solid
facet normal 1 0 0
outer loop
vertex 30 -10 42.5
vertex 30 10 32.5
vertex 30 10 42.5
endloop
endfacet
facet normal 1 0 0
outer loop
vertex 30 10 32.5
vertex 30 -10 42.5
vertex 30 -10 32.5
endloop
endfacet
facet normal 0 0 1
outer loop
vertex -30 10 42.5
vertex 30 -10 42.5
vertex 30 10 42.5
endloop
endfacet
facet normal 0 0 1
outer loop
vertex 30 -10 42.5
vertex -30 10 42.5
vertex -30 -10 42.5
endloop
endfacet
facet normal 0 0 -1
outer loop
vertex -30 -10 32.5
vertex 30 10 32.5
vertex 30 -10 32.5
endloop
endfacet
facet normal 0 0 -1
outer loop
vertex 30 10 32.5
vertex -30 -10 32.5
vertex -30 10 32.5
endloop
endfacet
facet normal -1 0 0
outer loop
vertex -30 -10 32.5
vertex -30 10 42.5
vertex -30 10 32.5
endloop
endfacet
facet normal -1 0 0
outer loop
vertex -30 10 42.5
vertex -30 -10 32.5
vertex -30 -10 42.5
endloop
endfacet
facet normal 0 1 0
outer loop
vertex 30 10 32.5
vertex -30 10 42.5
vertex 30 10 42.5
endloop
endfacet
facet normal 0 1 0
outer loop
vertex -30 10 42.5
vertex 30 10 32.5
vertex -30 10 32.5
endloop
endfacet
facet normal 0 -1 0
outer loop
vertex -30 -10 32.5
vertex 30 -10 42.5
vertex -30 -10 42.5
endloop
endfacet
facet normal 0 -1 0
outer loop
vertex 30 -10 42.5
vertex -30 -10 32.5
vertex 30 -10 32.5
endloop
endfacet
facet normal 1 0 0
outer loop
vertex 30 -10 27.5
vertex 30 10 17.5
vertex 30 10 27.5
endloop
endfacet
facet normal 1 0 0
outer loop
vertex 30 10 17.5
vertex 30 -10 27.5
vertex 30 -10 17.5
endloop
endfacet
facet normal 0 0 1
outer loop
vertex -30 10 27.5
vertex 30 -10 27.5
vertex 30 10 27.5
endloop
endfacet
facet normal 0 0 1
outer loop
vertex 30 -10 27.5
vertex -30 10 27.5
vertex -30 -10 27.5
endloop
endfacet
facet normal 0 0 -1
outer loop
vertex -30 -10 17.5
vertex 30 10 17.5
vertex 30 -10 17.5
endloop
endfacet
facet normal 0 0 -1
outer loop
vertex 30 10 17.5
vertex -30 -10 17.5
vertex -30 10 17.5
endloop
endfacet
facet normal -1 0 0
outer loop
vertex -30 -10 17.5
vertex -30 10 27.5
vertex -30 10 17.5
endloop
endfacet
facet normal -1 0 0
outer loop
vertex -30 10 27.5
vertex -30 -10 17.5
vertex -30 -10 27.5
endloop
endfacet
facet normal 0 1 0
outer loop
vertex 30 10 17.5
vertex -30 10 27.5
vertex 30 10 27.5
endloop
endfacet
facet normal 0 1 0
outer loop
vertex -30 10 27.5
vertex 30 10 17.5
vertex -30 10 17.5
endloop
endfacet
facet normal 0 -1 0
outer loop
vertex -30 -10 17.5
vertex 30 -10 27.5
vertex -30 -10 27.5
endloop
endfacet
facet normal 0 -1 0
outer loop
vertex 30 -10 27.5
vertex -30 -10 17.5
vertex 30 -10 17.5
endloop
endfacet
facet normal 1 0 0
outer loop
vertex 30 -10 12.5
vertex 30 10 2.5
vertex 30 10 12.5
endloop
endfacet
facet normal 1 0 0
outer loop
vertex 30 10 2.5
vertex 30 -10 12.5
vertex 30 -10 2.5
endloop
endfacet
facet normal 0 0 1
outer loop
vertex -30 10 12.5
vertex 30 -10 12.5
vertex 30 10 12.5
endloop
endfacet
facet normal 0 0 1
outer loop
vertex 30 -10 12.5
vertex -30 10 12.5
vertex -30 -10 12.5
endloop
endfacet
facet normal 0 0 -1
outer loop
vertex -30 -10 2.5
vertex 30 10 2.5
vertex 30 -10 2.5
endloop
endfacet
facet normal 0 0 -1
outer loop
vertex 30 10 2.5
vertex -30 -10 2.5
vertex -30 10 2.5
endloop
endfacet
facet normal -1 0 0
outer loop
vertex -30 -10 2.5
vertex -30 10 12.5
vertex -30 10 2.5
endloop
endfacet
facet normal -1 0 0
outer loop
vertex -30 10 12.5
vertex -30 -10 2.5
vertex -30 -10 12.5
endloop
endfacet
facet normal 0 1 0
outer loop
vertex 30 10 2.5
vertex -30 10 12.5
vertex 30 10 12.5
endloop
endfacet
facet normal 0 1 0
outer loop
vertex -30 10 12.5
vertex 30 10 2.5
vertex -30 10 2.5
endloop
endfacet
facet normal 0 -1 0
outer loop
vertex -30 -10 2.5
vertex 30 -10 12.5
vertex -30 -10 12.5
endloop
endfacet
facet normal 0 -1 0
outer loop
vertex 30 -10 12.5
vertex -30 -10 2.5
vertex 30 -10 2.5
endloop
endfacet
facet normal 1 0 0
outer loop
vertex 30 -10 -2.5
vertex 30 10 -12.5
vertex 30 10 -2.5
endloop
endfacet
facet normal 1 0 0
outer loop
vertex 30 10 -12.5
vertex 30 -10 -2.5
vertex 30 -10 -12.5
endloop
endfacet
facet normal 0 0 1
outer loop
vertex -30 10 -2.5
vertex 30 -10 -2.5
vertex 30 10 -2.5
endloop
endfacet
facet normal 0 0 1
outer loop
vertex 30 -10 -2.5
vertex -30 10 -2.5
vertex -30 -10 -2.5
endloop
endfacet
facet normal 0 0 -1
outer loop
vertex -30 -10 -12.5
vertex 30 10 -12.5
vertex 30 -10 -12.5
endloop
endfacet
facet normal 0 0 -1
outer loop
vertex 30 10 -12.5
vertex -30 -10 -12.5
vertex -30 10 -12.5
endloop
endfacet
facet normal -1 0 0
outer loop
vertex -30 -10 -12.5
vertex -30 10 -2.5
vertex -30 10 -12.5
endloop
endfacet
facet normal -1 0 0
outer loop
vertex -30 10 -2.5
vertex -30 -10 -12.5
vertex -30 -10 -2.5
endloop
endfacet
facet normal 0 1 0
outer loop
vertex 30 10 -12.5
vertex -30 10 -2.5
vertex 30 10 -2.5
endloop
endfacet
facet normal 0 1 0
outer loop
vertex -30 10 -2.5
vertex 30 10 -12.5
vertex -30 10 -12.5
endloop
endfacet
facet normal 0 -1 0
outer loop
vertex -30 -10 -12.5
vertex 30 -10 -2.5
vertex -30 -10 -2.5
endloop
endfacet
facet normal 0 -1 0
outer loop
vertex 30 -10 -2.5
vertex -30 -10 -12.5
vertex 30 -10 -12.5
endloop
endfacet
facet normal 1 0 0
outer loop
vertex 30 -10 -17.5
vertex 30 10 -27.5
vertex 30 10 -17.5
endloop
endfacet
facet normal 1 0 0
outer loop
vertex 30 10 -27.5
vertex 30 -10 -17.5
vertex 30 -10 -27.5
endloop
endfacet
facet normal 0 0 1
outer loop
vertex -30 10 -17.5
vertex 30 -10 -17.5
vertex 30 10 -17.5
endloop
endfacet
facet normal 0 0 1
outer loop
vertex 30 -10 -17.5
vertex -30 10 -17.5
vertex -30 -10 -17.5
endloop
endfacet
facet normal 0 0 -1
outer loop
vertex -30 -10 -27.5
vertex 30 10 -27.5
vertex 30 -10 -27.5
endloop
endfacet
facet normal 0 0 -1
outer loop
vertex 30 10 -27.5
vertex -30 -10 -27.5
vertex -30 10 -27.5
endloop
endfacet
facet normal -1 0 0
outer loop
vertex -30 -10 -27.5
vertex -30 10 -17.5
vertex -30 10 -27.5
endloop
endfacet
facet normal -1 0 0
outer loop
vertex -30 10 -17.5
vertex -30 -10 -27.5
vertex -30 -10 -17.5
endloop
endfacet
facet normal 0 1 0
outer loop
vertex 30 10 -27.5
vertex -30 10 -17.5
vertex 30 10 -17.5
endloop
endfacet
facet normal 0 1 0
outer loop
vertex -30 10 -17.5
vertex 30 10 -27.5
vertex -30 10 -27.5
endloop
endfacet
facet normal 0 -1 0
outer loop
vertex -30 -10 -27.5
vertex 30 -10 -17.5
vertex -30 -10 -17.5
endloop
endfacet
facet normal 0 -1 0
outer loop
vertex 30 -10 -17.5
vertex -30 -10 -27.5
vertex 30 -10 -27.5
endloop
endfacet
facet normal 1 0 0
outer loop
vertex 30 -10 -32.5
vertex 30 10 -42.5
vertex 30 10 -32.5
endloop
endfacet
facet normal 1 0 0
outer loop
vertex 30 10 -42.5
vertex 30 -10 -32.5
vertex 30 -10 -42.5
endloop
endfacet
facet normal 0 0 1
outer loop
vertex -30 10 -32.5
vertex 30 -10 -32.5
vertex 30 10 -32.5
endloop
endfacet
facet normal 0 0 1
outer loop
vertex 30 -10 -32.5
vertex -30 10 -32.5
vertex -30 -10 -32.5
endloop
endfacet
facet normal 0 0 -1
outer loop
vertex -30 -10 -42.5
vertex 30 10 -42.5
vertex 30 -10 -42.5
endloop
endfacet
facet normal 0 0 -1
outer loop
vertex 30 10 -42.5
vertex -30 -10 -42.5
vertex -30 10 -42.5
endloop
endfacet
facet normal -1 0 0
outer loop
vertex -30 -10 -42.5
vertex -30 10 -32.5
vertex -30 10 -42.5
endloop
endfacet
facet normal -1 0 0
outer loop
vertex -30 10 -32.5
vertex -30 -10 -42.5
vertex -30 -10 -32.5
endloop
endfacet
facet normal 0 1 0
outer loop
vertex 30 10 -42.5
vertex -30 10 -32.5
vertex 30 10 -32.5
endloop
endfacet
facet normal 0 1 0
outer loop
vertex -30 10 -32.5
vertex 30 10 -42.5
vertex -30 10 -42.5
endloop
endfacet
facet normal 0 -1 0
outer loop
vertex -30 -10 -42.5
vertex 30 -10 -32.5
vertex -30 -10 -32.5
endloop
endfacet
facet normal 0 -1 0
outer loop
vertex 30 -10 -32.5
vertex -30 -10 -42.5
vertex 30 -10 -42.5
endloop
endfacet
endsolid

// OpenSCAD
// Define dimensions for the rectangular blocks
block_length = 60;  // Length of the block
block_width = 20;   // Width of the block
block_height = 10;  // Height of the block
block_spacing = 5;  // Spacing between blocks

// Function to create a rectangular block
module rectangular_block() {
    cube([block_length, block_width, block_height], center = true);
}

// Generate the stacked blocks based on the positional relationship
translate([0, 0, block_height * 2.5 + block_spacing * 2.5]) rectangular_block(); // Layer 1
translate([0, 0, block_height * 1.5 + block_spacing * 1.5]) rectangular_block(); // Layer 2
translate([0, 0, block_height * 0.5 + block_spacing * 0.5]) rectangular_block(); // Layer 3
translate([0, 0, -block_height * 0.5 - block_spacing * 0.5]) rectangular_block(); // Layer 4
translate([0, 0, -block_height * 1.5 - block_spacing * 1.5]) rectangular_block(); // Layer 5
translate([0, 0, -block_height * 2.5 - block_spacing * 2.5]) rectangular_block(); // Layer 6
